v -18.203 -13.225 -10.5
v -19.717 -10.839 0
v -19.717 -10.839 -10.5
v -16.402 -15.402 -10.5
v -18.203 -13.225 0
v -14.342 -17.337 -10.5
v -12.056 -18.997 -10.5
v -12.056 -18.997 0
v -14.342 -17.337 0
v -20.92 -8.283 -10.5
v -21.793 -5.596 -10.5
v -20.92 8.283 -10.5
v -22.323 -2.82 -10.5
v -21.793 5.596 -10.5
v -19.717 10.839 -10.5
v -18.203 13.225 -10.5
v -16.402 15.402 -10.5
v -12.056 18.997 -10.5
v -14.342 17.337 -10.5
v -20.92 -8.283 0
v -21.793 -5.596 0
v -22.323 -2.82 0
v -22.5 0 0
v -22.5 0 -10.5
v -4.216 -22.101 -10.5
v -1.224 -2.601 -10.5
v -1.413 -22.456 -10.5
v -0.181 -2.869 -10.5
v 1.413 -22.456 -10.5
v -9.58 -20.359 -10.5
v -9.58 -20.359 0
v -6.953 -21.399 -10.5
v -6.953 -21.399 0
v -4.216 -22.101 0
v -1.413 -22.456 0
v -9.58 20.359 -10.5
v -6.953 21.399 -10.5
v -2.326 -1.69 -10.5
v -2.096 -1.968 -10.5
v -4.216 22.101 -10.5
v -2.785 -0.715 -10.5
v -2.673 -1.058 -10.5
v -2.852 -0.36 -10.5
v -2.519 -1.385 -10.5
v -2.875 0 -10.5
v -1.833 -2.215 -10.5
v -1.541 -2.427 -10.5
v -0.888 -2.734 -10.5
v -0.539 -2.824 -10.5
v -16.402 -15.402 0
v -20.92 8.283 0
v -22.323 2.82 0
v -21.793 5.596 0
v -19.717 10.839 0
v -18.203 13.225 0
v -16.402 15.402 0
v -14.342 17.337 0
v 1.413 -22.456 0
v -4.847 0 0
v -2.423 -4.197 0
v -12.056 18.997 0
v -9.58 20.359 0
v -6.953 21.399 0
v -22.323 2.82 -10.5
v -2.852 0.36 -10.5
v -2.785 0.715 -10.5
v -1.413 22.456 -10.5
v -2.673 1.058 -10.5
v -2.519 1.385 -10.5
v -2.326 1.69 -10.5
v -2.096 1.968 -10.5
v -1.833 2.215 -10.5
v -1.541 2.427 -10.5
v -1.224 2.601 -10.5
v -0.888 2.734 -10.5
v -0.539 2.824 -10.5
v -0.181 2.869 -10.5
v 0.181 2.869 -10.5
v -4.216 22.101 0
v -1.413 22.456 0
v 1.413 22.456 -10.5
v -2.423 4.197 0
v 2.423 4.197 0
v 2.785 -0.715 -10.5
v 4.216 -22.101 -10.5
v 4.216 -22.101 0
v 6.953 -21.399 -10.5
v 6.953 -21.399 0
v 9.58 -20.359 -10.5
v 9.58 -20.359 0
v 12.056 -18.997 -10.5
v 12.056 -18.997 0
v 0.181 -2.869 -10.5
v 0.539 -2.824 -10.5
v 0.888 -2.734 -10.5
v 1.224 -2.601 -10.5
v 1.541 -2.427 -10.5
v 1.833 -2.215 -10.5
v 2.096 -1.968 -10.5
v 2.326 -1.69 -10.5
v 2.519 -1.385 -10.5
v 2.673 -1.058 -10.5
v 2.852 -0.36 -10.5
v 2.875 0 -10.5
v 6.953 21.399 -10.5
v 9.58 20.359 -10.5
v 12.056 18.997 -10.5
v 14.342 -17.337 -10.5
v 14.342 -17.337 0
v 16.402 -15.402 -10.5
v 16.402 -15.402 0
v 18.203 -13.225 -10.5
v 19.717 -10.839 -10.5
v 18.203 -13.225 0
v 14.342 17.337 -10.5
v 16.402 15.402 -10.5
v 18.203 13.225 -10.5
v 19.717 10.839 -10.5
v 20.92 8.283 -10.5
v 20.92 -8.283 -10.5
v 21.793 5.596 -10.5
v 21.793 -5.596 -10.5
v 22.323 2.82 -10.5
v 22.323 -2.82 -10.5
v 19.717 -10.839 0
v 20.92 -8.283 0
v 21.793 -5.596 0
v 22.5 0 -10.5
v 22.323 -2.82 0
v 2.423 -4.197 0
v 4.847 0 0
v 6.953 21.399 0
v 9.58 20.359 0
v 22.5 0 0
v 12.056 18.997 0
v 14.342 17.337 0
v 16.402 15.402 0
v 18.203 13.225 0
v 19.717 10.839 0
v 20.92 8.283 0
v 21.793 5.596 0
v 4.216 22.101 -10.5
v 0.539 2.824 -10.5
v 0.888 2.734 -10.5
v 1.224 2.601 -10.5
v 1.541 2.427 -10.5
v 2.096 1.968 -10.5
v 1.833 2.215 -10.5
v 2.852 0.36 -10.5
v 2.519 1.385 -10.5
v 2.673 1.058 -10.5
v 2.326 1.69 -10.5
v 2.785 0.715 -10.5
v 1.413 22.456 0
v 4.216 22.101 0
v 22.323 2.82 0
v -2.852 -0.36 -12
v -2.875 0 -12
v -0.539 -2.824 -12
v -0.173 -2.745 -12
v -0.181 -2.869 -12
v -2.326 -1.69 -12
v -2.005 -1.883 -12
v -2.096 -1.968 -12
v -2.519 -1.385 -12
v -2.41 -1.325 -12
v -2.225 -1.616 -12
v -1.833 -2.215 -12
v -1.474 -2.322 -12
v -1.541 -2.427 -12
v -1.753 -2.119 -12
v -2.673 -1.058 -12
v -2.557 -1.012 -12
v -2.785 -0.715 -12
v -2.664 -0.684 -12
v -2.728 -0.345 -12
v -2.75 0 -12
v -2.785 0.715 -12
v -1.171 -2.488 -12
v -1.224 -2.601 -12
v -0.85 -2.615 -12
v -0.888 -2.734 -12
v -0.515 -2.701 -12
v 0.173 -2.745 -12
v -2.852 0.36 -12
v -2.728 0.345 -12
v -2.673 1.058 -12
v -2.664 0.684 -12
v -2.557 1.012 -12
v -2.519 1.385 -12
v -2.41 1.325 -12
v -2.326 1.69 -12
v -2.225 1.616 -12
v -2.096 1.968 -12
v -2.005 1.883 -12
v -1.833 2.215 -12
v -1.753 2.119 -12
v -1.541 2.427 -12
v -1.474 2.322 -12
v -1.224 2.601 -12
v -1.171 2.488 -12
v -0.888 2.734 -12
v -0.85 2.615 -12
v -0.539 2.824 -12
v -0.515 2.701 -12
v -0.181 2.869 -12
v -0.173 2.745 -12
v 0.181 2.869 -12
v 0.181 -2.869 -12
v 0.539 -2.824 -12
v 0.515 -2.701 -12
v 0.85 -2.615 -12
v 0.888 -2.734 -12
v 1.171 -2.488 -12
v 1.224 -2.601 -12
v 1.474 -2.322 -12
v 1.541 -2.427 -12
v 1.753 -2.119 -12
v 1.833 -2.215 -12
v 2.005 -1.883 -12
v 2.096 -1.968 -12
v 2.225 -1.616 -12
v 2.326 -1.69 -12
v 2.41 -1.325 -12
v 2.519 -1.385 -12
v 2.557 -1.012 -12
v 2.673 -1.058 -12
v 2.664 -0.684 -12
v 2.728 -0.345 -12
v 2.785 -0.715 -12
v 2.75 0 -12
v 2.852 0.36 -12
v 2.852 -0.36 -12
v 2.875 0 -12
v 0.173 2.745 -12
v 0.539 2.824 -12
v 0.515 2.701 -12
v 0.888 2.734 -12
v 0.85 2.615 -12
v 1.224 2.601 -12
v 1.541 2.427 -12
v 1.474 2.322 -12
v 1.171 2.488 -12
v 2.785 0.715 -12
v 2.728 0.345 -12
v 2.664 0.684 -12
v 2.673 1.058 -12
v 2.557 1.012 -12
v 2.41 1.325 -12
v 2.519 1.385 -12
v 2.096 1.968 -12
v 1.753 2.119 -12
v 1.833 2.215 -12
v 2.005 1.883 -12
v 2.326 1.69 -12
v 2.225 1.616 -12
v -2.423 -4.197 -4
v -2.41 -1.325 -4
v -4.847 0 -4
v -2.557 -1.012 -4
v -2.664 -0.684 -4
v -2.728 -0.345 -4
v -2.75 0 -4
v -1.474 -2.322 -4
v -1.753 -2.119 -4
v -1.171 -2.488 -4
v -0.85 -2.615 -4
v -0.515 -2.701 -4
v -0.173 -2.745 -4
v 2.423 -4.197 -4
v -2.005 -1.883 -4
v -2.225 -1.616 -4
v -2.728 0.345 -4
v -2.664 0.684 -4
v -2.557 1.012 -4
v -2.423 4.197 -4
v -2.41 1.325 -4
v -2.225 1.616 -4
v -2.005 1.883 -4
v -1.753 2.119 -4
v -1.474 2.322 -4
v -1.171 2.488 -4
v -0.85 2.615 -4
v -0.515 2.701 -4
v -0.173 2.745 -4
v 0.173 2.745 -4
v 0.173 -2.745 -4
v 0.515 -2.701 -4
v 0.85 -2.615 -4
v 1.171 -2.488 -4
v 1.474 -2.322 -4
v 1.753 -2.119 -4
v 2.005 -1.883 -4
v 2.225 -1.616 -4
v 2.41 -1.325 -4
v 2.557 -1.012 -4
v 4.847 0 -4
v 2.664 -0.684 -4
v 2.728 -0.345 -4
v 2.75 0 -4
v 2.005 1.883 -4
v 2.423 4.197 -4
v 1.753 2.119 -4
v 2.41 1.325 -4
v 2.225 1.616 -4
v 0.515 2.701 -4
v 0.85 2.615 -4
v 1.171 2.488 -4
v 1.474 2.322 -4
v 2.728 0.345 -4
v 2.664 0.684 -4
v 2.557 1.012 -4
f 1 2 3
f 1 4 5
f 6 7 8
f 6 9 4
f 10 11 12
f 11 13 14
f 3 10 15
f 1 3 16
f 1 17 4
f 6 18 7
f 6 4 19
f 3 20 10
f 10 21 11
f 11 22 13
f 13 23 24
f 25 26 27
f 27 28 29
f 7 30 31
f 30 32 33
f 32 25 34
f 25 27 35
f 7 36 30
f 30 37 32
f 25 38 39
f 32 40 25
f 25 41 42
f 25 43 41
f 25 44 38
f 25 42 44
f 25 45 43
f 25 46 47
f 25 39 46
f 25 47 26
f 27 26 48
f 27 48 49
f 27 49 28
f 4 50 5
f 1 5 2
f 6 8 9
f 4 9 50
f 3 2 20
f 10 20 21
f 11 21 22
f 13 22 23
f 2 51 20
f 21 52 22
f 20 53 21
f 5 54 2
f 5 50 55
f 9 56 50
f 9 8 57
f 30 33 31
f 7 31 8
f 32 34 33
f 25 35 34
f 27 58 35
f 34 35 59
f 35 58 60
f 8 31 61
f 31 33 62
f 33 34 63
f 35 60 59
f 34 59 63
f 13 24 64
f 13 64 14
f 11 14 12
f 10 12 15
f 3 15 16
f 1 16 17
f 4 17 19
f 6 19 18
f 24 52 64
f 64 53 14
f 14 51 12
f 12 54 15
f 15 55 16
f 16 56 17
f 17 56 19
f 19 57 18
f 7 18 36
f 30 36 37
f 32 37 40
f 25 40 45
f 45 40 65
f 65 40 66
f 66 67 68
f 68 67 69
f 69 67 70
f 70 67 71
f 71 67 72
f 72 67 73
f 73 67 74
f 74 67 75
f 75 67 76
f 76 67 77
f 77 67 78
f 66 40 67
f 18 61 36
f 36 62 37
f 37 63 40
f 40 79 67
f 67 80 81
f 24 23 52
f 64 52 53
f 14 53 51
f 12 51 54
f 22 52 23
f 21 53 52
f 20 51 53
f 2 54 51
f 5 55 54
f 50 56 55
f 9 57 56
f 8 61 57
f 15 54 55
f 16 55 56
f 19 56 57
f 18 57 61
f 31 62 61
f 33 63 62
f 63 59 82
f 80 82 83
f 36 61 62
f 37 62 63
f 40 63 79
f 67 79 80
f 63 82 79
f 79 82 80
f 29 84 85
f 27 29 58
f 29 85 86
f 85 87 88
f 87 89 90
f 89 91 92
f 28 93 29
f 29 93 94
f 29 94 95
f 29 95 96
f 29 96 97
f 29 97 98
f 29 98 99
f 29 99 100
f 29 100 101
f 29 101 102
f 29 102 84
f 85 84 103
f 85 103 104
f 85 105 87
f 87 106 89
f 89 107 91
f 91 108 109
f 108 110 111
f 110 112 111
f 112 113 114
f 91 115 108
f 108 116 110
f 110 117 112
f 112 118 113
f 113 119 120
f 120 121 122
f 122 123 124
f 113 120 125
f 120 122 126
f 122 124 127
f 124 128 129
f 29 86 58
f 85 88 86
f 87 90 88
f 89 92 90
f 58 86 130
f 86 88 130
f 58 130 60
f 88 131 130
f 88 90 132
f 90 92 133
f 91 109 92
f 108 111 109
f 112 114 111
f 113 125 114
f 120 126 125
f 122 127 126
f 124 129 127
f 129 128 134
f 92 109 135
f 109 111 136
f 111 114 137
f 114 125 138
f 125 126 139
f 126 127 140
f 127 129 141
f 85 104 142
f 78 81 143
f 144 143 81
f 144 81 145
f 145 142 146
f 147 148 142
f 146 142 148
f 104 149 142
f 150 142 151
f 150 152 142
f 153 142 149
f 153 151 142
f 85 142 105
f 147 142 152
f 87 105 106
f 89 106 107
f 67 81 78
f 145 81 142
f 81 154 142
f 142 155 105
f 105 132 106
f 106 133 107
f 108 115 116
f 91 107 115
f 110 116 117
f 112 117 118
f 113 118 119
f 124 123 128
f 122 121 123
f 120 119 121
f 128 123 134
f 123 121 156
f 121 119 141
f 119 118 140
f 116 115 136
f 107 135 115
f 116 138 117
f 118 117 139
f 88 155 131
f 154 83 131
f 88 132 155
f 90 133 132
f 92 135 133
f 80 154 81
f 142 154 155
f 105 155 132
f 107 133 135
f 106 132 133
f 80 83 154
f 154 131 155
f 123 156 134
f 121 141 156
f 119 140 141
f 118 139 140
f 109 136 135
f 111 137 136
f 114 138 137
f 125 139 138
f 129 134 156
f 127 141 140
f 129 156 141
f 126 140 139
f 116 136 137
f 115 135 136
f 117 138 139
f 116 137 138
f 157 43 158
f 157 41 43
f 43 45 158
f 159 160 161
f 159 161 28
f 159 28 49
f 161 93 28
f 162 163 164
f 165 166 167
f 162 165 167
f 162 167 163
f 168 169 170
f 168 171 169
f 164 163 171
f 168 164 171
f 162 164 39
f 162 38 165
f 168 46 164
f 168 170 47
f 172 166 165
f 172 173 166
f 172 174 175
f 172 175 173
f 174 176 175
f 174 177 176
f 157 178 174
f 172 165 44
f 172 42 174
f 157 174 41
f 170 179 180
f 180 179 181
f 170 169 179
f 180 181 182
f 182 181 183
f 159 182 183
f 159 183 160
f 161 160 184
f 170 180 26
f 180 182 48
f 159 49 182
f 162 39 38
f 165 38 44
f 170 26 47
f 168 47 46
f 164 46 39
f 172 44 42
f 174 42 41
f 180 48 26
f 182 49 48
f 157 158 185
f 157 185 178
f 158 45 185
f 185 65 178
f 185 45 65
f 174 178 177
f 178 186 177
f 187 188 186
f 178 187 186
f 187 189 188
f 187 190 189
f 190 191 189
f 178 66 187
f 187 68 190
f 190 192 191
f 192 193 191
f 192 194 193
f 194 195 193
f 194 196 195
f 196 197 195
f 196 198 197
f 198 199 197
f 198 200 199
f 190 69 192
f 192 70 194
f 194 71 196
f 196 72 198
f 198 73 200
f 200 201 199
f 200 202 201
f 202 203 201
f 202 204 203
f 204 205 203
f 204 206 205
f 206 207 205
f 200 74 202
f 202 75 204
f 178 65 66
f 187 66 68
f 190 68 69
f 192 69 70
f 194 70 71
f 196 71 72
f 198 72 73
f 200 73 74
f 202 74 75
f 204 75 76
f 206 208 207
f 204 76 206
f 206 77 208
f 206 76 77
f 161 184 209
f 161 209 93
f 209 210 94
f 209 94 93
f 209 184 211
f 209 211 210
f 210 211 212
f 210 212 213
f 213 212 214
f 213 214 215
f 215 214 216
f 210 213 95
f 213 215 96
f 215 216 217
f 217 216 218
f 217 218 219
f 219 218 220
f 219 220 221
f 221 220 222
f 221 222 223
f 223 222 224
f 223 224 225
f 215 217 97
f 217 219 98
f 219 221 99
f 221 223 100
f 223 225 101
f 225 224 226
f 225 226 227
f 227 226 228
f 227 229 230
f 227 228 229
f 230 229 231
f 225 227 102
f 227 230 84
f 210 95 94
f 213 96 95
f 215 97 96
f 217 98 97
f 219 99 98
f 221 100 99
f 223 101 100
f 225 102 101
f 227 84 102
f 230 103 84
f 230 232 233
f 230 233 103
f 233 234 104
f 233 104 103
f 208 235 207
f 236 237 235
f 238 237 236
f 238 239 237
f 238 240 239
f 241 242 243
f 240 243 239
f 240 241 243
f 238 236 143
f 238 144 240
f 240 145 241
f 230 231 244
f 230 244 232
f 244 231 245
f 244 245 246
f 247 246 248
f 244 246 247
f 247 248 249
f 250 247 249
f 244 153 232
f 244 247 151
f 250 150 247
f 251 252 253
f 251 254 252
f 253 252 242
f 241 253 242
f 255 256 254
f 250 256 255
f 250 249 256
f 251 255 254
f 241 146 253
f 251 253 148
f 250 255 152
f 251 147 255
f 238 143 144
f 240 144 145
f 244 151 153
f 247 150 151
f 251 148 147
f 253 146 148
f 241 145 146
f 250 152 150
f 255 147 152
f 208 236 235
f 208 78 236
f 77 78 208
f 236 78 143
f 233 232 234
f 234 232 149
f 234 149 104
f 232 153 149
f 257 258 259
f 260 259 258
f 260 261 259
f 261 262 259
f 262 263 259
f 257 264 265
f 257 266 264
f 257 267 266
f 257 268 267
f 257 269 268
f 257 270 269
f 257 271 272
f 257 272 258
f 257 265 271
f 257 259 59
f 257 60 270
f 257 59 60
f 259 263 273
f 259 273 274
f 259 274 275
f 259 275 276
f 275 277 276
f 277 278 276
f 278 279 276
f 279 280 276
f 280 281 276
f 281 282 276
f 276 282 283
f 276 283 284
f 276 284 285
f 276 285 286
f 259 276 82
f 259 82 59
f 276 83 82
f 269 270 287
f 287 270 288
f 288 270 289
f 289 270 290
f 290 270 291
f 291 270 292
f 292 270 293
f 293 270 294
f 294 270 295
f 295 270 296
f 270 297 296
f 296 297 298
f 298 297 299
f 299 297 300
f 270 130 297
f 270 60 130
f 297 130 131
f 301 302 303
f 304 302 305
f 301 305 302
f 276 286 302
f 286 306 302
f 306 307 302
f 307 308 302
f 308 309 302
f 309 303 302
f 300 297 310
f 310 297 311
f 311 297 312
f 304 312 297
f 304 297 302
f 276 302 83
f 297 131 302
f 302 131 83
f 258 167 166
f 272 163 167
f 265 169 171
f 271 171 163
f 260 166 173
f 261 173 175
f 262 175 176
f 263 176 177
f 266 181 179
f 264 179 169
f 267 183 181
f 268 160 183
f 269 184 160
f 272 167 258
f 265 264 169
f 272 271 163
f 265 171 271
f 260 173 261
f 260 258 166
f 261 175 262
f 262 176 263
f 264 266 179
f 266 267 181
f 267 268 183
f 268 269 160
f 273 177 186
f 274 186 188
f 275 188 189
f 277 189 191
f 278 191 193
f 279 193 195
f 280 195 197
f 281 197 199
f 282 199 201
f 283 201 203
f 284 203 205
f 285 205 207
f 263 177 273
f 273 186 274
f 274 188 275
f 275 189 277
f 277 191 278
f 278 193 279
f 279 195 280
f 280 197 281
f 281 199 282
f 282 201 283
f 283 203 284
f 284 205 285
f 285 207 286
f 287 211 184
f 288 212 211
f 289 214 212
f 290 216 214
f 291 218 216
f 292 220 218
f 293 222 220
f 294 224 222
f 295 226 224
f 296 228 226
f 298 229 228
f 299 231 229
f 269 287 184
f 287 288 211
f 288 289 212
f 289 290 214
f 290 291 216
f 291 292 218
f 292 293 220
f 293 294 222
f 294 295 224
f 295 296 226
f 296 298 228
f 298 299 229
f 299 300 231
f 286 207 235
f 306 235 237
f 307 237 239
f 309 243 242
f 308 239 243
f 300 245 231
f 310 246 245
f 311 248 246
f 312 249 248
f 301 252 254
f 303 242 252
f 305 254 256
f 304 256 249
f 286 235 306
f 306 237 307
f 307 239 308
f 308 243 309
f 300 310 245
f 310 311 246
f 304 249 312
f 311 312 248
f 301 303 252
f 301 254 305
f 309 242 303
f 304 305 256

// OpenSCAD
$fn = 50;

difference() {
	union() {
		translate(v = [0, 0, -10.5]) {
			cylinder(h = 10.5, r = 22.5);
		}
		#translate(v = [0, 0, -12.0]) {
			cylinder(h = 12, r = 2.875);
		}
	}
	union() {
		translate(v = [0, 0, 0]) {
			rotate(a = [0, 0, 0]) {
				difference() {
					union() {
						translate(v = [0, 0, -4]) {
							linear_extrude(height = 4) {
								polygon(points = [[4.8468, 0.0], [2.4234000000000004, 4.197451927062417], [-2.423399999999999, 4.197451927062417], [-4.8468, 5.935618106107392e-16], [-2.423400000000002, -4.197451927062416], [2.423399999999997, -4.197451927062419]]);
							}
						}
					}
					union();
				}
			}
		}
		#translate(v = [0, 0, -100.0]) {
			cylinder(h = 200, r = 2.75);
		}
	}
}
